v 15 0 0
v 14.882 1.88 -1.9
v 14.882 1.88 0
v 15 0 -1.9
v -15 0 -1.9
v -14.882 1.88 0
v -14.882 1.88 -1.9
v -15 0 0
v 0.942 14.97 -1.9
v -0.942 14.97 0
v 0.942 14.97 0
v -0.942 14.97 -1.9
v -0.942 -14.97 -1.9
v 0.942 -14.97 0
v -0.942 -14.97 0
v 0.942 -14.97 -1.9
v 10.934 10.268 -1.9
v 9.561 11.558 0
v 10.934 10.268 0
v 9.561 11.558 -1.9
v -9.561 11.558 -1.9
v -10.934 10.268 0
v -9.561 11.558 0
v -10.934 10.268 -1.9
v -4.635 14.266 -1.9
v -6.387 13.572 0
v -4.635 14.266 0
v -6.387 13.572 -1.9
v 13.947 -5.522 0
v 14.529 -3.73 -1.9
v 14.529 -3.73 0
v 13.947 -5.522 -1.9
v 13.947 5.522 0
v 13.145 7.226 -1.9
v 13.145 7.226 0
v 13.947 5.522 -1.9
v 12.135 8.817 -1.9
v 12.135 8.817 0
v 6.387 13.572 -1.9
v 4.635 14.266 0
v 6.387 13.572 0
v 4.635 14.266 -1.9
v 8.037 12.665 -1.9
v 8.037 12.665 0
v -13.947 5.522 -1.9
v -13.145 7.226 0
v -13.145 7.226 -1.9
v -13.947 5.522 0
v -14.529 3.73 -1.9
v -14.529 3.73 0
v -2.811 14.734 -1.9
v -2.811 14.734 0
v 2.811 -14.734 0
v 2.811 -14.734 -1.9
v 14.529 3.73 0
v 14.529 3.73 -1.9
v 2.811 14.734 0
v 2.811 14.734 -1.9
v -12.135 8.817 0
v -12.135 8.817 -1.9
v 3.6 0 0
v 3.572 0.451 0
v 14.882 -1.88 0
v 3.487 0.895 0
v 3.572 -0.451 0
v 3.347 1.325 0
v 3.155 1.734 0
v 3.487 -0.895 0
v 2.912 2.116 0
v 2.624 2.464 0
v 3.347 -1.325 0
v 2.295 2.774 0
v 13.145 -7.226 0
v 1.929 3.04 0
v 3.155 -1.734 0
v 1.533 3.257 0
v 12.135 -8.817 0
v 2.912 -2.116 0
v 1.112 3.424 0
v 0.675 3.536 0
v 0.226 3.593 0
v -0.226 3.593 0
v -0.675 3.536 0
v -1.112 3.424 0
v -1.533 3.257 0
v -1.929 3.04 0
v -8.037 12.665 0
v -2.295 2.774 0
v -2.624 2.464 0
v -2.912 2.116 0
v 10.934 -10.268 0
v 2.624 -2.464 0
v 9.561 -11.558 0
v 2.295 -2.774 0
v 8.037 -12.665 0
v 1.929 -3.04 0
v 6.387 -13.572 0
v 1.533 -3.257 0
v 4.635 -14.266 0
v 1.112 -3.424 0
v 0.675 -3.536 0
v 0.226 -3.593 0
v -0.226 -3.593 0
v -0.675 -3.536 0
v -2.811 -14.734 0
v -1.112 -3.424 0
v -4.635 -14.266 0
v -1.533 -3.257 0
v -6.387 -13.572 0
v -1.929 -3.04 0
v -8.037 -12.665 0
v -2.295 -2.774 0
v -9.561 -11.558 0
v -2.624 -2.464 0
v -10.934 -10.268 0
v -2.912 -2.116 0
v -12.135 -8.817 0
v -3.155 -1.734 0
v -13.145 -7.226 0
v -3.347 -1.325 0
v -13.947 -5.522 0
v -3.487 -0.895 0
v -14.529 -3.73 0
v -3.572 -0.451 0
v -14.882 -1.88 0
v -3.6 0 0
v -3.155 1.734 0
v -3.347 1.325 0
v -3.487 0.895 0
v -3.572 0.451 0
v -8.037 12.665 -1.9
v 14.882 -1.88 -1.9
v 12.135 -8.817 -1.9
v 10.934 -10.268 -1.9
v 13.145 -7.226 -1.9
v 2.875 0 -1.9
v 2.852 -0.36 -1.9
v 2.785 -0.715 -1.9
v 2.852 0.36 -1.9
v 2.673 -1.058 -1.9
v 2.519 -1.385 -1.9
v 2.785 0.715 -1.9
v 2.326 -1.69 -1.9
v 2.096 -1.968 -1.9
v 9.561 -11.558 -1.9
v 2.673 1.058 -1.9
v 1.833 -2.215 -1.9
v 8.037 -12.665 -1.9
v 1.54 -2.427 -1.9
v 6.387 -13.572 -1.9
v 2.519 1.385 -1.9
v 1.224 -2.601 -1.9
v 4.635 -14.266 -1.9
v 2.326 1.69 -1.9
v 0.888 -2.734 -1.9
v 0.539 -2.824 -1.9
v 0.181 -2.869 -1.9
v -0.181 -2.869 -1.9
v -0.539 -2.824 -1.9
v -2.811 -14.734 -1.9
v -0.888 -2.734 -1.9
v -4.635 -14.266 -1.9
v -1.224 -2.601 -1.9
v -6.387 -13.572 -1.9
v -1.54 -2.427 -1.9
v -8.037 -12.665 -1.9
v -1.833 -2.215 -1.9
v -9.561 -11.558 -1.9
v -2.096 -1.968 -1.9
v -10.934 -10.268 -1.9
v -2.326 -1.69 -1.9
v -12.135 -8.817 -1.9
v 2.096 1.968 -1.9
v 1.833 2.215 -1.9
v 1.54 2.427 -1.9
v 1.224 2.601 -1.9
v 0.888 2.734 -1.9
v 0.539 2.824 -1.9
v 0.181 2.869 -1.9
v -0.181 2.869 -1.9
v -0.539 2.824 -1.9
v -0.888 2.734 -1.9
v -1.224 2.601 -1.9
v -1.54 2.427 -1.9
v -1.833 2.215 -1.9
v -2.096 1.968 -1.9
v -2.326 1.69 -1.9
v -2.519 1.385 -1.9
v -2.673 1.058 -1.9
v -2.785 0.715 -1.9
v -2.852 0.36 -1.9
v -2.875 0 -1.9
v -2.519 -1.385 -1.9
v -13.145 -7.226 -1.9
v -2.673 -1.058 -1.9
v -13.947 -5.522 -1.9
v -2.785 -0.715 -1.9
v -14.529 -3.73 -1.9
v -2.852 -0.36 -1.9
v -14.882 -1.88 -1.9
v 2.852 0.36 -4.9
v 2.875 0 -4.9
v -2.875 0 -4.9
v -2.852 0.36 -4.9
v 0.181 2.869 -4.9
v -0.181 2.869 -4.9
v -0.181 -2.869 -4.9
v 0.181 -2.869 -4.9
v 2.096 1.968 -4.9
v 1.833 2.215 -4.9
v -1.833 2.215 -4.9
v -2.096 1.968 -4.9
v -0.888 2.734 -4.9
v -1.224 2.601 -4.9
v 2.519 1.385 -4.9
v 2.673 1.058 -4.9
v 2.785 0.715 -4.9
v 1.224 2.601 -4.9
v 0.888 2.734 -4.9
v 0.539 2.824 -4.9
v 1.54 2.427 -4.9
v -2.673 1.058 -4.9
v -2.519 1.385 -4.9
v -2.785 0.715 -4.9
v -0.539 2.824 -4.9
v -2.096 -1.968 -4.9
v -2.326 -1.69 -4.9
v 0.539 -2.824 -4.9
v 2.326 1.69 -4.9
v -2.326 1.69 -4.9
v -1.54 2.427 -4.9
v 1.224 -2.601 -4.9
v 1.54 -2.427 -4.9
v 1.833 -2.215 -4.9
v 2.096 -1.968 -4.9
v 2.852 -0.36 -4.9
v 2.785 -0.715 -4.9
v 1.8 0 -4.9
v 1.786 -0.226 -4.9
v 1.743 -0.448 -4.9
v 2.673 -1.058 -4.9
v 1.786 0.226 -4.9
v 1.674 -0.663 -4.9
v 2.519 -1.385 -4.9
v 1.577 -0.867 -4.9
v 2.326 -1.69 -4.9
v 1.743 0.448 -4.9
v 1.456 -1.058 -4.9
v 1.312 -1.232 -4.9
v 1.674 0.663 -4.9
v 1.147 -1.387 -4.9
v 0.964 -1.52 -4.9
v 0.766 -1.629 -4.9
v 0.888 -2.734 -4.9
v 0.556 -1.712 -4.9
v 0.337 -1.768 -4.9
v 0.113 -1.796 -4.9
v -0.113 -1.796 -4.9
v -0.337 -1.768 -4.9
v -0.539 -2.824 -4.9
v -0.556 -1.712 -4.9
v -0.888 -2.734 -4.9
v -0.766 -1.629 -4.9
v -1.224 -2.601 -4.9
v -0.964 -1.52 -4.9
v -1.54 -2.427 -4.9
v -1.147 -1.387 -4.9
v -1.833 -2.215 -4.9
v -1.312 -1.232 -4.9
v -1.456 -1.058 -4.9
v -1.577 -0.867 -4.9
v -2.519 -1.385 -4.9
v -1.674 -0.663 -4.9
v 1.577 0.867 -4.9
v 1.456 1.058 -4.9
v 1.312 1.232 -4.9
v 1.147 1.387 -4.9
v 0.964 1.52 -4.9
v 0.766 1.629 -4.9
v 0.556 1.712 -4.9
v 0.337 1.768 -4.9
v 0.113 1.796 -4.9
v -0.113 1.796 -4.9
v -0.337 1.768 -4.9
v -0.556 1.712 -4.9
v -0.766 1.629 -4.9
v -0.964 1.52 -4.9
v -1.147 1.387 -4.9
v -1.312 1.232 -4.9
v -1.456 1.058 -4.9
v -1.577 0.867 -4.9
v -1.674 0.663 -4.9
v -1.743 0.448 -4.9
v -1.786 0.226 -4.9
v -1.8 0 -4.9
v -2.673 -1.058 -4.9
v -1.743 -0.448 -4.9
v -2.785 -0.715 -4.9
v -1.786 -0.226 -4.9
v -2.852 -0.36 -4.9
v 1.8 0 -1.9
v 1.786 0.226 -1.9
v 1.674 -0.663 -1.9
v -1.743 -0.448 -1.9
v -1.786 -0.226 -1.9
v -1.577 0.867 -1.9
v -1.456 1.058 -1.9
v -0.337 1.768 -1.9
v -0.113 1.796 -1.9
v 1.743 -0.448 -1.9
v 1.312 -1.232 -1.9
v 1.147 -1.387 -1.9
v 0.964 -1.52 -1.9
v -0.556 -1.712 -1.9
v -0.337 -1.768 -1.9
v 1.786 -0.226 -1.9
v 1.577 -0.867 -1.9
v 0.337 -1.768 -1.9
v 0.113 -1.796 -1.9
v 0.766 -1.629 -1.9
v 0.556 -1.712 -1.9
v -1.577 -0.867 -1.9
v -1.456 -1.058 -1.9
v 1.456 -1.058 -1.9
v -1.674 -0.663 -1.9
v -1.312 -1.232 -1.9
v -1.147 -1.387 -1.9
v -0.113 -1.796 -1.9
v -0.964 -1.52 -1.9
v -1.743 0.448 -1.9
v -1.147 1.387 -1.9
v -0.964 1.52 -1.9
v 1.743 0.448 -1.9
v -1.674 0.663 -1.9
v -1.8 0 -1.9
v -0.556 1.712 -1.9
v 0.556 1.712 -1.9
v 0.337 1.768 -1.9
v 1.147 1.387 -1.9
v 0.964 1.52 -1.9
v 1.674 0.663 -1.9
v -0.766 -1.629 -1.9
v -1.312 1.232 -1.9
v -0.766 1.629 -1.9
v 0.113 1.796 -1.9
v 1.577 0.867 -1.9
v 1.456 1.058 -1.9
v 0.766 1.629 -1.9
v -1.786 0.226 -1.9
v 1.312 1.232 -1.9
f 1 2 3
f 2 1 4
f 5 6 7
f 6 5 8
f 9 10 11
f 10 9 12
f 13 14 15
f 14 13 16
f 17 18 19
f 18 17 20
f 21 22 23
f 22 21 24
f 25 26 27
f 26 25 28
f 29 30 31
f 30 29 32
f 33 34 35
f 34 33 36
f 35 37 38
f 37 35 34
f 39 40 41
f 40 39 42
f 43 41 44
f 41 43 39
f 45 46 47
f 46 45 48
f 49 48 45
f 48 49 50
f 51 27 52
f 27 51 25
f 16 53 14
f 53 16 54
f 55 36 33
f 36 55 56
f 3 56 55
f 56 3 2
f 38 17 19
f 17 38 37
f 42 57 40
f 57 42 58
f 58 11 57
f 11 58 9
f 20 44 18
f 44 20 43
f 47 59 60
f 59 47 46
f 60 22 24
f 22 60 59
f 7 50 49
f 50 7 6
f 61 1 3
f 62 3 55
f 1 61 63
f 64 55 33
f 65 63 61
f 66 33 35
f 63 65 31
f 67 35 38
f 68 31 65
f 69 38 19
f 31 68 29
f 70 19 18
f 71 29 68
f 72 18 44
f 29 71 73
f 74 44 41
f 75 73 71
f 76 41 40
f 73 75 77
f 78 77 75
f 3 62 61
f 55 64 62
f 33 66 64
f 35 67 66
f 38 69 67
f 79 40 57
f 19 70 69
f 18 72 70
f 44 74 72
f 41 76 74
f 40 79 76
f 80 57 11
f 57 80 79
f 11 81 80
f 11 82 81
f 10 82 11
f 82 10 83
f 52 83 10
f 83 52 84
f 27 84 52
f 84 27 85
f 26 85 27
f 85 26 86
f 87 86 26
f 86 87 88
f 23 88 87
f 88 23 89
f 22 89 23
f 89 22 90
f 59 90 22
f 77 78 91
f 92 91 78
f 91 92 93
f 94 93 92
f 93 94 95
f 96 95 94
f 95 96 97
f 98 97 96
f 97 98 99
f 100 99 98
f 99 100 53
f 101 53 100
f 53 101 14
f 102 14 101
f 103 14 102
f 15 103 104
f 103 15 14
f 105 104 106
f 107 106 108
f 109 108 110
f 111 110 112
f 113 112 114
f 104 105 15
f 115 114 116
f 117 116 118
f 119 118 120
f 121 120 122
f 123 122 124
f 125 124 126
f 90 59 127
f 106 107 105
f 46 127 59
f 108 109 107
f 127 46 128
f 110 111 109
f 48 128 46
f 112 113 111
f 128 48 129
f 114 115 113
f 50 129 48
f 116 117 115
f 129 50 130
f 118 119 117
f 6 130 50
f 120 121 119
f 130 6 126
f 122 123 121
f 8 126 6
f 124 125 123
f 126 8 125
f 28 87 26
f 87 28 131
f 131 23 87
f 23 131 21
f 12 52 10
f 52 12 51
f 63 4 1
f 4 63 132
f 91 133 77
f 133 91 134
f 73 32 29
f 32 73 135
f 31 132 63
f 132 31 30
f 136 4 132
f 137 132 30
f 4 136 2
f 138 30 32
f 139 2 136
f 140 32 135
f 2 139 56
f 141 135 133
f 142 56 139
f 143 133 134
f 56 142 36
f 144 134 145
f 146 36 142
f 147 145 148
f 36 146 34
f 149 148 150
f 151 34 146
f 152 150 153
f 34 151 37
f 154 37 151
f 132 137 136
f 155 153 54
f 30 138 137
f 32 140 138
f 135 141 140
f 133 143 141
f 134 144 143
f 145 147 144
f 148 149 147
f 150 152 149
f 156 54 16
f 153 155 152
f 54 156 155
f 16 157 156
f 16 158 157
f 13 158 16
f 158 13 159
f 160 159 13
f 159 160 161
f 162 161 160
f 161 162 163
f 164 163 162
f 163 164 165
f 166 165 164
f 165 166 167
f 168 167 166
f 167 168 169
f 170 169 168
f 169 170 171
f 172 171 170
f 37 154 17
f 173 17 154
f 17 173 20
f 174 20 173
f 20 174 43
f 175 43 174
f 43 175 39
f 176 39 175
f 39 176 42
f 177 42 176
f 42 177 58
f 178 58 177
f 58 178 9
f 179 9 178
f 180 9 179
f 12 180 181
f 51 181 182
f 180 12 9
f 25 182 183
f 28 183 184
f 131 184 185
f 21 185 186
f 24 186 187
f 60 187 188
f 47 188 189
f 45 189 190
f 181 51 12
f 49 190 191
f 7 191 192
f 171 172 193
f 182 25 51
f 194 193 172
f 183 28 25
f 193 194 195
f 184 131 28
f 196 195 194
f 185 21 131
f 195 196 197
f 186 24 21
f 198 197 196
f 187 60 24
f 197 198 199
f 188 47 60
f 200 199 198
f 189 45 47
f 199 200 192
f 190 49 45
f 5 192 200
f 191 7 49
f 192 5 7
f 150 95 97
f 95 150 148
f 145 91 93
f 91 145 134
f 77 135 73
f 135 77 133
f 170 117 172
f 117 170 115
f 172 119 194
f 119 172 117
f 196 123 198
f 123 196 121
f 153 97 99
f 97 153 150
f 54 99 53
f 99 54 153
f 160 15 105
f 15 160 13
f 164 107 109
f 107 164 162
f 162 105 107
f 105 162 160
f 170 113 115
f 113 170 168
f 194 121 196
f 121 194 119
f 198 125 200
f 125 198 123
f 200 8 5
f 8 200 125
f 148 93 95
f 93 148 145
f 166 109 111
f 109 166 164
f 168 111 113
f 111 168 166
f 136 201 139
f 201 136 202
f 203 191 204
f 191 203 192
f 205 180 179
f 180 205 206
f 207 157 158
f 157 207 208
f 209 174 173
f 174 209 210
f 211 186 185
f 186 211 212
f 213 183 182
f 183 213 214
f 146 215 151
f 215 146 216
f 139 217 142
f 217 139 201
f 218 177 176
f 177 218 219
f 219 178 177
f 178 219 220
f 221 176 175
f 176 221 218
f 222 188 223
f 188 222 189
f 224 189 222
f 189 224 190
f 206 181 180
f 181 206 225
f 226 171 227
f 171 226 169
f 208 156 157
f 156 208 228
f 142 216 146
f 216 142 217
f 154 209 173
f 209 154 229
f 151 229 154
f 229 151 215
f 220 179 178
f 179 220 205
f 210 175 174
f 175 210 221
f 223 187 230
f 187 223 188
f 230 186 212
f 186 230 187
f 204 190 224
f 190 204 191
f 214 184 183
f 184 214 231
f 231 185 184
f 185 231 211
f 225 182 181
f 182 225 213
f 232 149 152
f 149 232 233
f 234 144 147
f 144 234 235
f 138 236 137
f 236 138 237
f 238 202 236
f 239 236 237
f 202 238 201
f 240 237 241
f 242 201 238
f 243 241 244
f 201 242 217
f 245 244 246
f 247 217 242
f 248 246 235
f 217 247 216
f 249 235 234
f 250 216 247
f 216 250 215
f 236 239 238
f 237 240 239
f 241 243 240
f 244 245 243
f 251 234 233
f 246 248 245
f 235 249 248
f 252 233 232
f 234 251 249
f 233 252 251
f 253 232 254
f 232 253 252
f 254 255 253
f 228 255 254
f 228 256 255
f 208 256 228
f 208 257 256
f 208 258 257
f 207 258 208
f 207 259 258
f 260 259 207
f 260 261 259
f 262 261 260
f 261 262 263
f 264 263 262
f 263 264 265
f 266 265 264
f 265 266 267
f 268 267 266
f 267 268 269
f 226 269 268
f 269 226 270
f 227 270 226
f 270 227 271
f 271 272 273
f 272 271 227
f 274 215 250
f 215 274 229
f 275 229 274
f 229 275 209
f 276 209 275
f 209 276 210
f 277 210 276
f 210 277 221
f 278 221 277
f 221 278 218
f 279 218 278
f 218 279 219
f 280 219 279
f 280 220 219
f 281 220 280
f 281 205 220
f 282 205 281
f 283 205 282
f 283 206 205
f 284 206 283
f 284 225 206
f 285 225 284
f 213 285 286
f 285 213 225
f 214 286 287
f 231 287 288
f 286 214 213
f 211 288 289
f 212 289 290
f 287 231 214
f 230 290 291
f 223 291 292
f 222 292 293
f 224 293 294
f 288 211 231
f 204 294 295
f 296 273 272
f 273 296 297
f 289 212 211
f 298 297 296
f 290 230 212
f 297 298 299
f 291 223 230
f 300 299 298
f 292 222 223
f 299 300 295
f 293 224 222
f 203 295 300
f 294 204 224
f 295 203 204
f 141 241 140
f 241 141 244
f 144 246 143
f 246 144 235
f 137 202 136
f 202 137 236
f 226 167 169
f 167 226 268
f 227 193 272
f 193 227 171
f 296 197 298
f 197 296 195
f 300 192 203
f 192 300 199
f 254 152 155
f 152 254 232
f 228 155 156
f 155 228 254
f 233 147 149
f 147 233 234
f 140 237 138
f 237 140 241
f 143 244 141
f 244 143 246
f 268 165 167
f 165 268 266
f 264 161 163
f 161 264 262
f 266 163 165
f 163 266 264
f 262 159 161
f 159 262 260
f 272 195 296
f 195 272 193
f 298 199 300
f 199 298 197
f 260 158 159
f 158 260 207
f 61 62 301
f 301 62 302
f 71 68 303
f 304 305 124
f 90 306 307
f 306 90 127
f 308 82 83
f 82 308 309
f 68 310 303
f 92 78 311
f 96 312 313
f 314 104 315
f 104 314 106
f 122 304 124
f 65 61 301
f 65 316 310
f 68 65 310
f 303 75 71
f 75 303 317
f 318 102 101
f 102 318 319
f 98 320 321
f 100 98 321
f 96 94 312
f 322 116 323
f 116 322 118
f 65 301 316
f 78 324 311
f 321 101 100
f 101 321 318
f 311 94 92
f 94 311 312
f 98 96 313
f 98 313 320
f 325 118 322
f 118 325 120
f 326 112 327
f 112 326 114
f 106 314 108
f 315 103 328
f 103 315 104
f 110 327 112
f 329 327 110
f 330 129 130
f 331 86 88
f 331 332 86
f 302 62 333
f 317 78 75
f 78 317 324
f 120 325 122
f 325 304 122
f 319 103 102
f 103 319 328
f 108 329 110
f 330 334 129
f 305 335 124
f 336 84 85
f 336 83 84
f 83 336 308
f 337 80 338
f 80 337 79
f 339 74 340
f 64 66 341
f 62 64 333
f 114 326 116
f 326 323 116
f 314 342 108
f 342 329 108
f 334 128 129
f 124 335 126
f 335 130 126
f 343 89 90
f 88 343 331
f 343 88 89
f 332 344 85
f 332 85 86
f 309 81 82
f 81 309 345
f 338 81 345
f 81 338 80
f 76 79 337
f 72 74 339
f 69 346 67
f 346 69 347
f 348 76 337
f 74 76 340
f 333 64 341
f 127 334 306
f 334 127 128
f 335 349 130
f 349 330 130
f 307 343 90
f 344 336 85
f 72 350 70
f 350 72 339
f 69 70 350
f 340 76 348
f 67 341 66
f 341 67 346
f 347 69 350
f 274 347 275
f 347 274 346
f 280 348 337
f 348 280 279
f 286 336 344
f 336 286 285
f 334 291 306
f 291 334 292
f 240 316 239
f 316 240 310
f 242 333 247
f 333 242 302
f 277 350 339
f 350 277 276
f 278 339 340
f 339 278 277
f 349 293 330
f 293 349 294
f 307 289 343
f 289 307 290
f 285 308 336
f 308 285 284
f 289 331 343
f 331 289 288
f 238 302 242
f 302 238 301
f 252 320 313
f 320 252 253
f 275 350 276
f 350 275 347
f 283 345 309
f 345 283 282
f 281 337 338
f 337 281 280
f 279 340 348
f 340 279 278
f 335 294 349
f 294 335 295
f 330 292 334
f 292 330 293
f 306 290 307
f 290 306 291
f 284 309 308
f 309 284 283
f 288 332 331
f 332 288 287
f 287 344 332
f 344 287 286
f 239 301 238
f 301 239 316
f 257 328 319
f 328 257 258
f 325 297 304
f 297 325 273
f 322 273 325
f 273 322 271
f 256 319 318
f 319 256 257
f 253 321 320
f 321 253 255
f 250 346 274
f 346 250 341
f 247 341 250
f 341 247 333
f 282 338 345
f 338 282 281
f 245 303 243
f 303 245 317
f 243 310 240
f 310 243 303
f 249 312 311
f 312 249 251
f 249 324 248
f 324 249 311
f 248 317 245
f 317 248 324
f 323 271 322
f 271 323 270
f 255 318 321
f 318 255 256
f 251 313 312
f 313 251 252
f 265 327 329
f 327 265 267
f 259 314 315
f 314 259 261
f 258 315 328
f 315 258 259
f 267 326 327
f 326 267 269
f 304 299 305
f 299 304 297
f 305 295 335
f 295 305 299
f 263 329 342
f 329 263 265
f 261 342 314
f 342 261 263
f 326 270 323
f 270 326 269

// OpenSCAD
$fn = 50;

difference() {
	union() {
		translate(v = [0, 0, -1.9]) {
			cylinder(h = 1.9, r = 15.0);
		}
		#translate(v = [0, 0, -4.9]) {
			cylinder(h = 4.9, r = 2.875);
		}
	}
	union() {
		translate(v = [0, 0, 0]) {
			rotate(a = [0, 0, 0]) {
				difference() {
					union() {
						translate(v = [0, 0, -4.9]) {
							cylinder(h = 4.9, r = 1.5);
						}
						translate(v = [0, 0, -1.9]) {
							cylinder(h = 1.9, r1 = 1.8, r2 = 3.6);
						}
						translate(v = [0, 0, -4.9]) {
							cylinder(h = 4.9, r = 1.8);
						}
						translate(v = [0, 0, -4.9]) {
							cylinder(h = 4.9, r = 1.5);
						}
					}
					union();
				}
			}
		}
	}
}
